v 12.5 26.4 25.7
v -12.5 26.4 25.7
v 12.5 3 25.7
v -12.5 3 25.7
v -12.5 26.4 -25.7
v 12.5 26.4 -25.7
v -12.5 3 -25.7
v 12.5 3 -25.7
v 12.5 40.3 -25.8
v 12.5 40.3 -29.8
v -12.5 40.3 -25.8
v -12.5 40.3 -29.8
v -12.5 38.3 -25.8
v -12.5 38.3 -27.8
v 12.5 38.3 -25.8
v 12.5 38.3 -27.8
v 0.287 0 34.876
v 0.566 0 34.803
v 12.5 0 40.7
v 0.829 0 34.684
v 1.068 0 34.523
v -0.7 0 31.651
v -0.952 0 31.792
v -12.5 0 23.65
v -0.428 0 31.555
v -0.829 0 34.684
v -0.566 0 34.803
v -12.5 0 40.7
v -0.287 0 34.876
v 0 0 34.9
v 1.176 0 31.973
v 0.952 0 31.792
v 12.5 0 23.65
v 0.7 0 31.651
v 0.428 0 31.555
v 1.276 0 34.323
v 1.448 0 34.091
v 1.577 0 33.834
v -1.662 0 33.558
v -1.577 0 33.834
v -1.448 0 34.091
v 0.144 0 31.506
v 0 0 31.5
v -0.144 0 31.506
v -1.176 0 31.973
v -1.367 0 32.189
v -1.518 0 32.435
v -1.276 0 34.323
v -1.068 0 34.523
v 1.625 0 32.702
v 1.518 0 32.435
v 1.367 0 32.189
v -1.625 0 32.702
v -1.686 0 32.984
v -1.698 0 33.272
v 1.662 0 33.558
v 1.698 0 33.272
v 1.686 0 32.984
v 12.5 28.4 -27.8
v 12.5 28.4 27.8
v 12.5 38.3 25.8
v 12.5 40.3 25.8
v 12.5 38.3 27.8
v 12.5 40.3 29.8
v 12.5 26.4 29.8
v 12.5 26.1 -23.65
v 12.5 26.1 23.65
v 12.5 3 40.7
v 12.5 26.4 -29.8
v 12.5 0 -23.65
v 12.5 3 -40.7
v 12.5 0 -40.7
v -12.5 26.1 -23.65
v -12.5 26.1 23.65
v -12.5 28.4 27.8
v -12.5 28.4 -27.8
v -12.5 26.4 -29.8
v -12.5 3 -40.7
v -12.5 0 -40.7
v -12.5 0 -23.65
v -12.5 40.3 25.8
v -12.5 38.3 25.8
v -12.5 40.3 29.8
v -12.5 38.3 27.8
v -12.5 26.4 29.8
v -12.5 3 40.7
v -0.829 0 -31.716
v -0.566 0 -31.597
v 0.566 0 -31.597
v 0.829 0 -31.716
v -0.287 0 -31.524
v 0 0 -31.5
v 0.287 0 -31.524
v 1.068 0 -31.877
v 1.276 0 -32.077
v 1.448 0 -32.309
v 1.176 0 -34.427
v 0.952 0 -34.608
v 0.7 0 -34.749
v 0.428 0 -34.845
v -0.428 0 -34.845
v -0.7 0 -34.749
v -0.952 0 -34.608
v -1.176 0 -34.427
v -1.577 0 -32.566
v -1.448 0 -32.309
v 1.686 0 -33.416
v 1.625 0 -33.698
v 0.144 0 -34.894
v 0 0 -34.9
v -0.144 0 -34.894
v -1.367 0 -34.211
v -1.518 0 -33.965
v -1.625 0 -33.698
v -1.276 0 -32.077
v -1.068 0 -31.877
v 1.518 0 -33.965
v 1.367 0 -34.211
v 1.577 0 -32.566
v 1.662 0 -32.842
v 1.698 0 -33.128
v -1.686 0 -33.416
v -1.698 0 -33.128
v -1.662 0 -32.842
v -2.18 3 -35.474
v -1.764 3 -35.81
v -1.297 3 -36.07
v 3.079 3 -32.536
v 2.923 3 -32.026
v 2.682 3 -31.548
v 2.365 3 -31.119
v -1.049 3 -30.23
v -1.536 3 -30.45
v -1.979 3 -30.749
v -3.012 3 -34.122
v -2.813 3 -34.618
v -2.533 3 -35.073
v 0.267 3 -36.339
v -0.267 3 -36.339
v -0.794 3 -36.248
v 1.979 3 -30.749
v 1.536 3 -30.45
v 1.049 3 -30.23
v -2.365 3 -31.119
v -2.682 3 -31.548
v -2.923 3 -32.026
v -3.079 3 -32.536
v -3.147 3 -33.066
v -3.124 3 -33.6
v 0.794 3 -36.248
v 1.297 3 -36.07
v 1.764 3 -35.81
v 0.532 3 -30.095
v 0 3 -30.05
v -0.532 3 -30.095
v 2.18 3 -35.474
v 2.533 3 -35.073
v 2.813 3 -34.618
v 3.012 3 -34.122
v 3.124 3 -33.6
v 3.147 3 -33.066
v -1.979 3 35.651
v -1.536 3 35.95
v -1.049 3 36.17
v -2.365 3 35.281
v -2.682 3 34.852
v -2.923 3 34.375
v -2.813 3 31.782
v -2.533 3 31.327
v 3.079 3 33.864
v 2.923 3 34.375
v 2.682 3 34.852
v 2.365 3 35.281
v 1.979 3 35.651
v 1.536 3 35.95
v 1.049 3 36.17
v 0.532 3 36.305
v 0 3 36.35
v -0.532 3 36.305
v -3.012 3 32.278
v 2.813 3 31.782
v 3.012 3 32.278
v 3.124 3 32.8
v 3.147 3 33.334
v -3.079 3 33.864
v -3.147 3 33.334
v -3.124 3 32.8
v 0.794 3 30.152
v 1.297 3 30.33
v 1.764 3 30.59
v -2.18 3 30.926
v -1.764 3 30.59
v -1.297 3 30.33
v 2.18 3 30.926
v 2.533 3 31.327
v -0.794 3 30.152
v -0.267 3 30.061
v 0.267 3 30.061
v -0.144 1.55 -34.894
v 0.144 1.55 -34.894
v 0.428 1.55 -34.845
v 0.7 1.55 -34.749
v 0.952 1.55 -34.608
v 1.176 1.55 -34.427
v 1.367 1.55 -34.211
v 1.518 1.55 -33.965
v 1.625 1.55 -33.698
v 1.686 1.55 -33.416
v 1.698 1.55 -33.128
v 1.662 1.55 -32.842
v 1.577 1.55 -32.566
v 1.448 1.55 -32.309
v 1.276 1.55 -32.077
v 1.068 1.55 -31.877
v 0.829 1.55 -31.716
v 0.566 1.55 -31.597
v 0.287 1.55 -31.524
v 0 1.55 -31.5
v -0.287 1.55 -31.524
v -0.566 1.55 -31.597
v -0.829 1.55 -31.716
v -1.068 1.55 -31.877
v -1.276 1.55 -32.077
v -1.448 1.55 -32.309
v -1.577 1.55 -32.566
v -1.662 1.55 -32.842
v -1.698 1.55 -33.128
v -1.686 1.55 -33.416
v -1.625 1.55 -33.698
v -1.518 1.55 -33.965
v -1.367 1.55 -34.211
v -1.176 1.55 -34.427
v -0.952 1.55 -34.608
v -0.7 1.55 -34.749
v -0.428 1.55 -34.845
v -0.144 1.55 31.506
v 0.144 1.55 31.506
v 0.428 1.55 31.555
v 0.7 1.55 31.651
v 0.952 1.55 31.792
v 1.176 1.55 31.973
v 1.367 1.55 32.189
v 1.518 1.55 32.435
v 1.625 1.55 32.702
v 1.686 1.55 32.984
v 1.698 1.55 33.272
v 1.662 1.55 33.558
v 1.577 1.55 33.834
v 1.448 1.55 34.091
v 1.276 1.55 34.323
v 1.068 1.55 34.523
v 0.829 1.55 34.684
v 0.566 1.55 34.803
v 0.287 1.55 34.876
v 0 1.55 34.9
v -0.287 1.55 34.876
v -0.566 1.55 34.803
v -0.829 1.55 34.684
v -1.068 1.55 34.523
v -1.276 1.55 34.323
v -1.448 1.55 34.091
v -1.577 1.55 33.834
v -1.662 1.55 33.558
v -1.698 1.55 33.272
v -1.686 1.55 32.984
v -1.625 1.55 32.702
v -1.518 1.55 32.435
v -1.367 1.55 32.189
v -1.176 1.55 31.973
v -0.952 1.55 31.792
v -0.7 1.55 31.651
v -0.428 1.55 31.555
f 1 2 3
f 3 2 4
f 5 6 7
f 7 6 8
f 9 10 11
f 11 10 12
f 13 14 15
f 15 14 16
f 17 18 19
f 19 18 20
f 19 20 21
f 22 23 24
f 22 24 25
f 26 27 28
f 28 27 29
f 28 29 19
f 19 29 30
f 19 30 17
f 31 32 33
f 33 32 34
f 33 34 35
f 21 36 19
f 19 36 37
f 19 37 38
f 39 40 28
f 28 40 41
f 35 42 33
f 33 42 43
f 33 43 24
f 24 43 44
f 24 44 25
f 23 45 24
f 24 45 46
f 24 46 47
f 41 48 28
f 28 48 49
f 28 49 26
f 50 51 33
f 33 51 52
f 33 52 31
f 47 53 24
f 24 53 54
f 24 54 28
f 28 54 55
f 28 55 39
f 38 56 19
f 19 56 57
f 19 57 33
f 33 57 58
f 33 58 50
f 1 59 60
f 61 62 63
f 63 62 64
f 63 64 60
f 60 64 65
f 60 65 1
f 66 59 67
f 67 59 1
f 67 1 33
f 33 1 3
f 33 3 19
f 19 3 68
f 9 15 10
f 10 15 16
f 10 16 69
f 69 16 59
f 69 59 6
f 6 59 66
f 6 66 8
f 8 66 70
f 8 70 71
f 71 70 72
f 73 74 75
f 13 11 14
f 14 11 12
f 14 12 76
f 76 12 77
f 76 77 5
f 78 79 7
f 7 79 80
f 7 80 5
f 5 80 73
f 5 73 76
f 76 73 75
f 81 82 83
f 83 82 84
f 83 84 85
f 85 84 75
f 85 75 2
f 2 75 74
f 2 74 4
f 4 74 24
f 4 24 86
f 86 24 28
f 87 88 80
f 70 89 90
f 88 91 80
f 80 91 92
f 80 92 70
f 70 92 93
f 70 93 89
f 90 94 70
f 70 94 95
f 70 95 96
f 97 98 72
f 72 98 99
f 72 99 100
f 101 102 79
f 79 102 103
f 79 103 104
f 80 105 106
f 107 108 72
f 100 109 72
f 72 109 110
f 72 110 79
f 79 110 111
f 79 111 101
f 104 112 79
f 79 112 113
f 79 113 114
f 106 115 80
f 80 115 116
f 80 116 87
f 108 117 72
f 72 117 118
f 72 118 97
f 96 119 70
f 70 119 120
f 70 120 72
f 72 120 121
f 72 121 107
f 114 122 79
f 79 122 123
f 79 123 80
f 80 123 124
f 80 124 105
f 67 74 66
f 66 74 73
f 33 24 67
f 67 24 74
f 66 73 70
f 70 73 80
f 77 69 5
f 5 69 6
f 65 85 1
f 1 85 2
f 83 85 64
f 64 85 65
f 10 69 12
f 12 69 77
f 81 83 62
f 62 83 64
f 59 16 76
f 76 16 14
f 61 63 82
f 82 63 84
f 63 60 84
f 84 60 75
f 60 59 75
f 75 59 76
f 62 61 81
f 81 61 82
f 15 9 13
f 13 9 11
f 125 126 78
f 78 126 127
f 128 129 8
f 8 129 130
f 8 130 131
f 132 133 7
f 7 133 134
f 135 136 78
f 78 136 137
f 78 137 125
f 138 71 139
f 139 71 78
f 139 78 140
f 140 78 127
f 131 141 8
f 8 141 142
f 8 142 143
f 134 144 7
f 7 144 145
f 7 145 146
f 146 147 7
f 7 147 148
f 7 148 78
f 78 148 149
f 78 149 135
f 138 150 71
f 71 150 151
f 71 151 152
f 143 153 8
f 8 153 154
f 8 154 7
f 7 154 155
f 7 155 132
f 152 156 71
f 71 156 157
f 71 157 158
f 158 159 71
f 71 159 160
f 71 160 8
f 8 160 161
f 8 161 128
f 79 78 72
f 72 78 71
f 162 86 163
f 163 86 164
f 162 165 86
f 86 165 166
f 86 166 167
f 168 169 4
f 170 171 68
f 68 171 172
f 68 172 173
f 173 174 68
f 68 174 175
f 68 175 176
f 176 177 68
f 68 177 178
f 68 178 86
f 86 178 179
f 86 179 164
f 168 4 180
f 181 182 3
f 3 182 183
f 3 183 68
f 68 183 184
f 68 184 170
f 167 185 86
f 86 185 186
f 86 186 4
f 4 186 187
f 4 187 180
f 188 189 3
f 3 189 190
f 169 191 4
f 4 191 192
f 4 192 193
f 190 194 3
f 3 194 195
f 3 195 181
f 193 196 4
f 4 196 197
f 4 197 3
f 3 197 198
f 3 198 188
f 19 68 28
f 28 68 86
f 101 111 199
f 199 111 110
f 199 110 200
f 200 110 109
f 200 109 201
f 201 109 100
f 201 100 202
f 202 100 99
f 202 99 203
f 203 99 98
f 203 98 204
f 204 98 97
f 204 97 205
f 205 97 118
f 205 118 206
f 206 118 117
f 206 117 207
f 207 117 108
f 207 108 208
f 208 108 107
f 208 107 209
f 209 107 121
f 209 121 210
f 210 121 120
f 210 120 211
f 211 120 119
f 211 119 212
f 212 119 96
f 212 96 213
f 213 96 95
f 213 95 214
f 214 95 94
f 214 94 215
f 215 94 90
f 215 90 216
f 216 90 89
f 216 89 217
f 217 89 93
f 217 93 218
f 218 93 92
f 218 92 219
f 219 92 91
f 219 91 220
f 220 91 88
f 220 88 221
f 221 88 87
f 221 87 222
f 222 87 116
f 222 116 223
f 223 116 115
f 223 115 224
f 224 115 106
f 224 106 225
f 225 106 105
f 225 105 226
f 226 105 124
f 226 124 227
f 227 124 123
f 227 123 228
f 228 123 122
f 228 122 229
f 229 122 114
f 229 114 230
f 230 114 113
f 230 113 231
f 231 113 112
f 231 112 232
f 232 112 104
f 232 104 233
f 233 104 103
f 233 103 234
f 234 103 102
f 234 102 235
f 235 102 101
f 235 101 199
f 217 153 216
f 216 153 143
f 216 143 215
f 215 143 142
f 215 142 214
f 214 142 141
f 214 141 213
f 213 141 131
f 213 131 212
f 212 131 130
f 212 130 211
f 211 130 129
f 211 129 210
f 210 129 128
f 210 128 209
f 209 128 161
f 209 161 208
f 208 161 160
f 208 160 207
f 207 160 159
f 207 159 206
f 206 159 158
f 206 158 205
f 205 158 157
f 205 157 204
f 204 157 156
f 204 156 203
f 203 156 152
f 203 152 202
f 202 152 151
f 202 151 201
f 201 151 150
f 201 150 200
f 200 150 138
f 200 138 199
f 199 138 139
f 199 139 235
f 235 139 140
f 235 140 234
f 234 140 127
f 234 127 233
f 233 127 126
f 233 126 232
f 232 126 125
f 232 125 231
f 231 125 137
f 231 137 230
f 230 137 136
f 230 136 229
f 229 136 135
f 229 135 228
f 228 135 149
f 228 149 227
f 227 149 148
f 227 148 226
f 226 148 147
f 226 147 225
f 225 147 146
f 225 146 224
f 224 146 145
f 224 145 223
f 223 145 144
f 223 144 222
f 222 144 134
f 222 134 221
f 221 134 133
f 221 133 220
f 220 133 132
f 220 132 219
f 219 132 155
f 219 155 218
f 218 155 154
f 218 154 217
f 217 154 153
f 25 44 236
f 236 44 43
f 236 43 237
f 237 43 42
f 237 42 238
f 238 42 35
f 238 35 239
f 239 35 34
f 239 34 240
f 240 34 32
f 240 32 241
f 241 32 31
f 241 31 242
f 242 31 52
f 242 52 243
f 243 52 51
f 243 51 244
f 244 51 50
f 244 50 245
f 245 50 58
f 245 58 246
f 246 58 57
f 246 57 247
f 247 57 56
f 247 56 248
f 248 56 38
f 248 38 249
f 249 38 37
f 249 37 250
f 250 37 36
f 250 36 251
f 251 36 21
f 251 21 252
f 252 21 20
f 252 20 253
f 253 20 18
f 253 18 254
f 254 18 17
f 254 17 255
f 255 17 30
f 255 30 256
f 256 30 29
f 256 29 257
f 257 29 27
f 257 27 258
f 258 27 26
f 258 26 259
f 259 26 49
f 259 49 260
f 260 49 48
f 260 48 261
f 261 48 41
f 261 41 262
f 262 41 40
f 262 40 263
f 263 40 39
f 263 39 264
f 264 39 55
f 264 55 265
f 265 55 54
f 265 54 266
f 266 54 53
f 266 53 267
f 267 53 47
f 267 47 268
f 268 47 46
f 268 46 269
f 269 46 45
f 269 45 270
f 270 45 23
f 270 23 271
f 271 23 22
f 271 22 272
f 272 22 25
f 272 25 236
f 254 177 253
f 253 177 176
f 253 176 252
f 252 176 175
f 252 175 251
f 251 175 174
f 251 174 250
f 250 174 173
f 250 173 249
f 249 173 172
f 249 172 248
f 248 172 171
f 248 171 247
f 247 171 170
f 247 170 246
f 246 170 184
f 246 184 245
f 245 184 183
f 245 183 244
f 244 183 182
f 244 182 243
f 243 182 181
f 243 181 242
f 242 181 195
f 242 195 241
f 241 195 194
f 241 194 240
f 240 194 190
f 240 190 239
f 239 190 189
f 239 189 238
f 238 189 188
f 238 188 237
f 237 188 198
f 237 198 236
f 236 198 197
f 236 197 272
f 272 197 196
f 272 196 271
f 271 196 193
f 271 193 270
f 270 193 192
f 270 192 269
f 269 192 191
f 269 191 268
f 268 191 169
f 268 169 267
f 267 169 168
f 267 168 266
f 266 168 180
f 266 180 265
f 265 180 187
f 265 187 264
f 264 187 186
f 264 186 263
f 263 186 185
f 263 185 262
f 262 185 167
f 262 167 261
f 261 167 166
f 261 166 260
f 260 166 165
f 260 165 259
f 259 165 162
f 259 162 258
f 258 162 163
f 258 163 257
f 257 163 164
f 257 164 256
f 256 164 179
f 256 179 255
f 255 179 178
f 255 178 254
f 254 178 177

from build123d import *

# Parameters (mm, degrees)
SKETCH1_W                                       = 25
SKETCH1_H                                       = 51.4
BOSS_EXTRUDE1_DEPTH                             = 28.4
SKETCH2_W                                       = 47.3
SKETCH2_H                                       = 27.1
CUT_EXTRUDE1_DEPTH                              = 147
BOSS_EXTRUDE2_DEPTH                             = 11.9
BOSS_EXTRUDE2_DEPTH_BACK                        = 2
SKETCH4_W                                       = 25
SKETCH4_H                                       = 59.6
SKETCH5_W                                       = 55.6
SKETCH5_H                                       = 9.9
CUT_EXTRUDE5_DEPTH                              = 57.010088377
SKETCH6_W                                       = 51.6
SKETCH6_H                                       = 2
CUT_EXTRUDE6_DEPTH                              = 57.010088377
SKETCH7_W                                       = 25
SKETCH7_H                                       = 3
BOSS_EXTRUDE3_DEPTH                             = 15
SKETCH8_W                                       = 25
SKETCH8_H                                       = 3
BOSS_EXTRUDE4_DEPTH                             = 15
CSK_FOR_M3_FLAT_HEAD_MACHINE_SCREW4_D           = 3.4
CSK_FOR_M3_FLAT_HEAD_MACHINE_SCREW4_DEPTH       = 10.4
CSK_FOR_M3_FLAT_HEAD_MACHINE_SCREW4_CSINK_D     = 6.3
CSK_FOR_M3_FLAT_HEAD_MACHINE_SCREW4_CSINK_ANGLE = 90
CSK_FOR_M3_FLAT_HEAD_MACHINE_SCREW4_TIP         = 1.021463052


with BuildPart() as part:
    # Sketch1 → Boss-Extrude1 (new body)
    with BuildSketch(Plane(origin=(0, 0, 0), x_dir=(1, 0, 0), z_dir=(0, 1, 0))):
        Rectangle(SKETCH1_W, SKETCH1_H)
    extrude(amount=BOSS_EXTRUDE1_DEPTH)

    # Sketch2 → Cut-Extrude1 (cut)
    with BuildSketch(Plane(origin=(12.5, 0, 0), x_dir=(0, 0, -1), z_dir=(1, 0, 0))):
        with Locations((0, 12.55)):
            Rectangle(SKETCH2_W, SKETCH2_H)
    extrude(amount=-CUT_EXTRUDE1_DEPTH, mode=Mode.SUBTRACT)

    # Sketch4 → Boss-Extrude2 (add, two sides: drawn at the far end of the back side and taken through both)
    with BuildSketch(Plane(origin=(0, 28.4, 0), x_dir=(1, 0, 0), z_dir=(0, 1, 0)).offset(-BOSS_EXTRUDE2_DEPTH_BACK)):
        Rectangle(SKETCH4_W, SKETCH4_H)
    extrude(amount=BOSS_EXTRUDE2_DEPTH + BOSS_EXTRUDE2_DEPTH_BACK)

    # Sketch5 → Cut-Extrude5 (cut, through all)
    with BuildSketch(Plane.ZY.offset(12.5)):
        with Locations((0, 33.35)):
            Rectangle(SKETCH5_W, SKETCH5_H)
    extrude(amount=-CUT_EXTRUDE5_DEPTH, mode=Mode.SUBTRACT)

    # Sketch6 → Cut-Extrude6 (cut, through all)
    with BuildSketch(Plane.ZY.offset(12.5)):
        with Locations((0, 39.3)):
            Rectangle(SKETCH6_W, SKETCH6_H)
    extrude(amount=-CUT_EXTRUDE6_DEPTH, mode=Mode.SUBTRACT)

    # Sketch7 → Boss-Extrude3 (add)
    with BuildSketch(Plane(origin=(0, 0, -25.7), x_dir=(-1, 0, 0), z_dir=(0, 0, -1))):
        with Locations((0, 1.5)):
            Rectangle(SKETCH7_W, SKETCH7_H)
    extrude(amount=BOSS_EXTRUDE3_DEPTH)

    # Sketch8 → Boss-Extrude4 (add)
    with BuildSketch(Plane.XY.offset(25.7)):
        with Locations((0, 1.5)):
            Rectangle(SKETCH8_W, SKETCH8_H)
    extrude(amount=BOSS_EXTRUDE4_DEPTH)

    # CSK for M3 Flat Head Machine Screw4
    with Locations(Plane(origin=(0, 3, 0), x_dir=(1, 0, 0), z_dir=(0, 1, 0))):
        with Locations((0, 33.2), (0, -33.2)):
            CounterSinkHole(CSK_FOR_M3_FLAT_HEAD_MACHINE_SCREW4_D / 2, CSK_FOR_M3_FLAT_HEAD_MACHINE_SCREW4_CSINK_D / 2, depth=CSK_FOR_M3_FLAT_HEAD_MACHINE_SCREW4_DEPTH, counter_sink_angle=CSK_FOR_M3_FLAT_HEAD_MACHINE_SCREW4_CSINK_ANGLE)
            with Locations((0, 0, -(CSK_FOR_M3_FLAT_HEAD_MACHINE_SCREW4_DEPTH + CSK_FOR_M3_FLAT_HEAD_MACHINE_SCREW4_TIP / 2))):  # 118° drill point
                Cone(0, CSK_FOR_M3_FLAT_HEAD_MACHINE_SCREW4_D / 2, CSK_FOR_M3_FLAT_HEAD_MACHINE_SCREW4_TIP, mode=Mode.SUBTRACT)


solid = part.part
